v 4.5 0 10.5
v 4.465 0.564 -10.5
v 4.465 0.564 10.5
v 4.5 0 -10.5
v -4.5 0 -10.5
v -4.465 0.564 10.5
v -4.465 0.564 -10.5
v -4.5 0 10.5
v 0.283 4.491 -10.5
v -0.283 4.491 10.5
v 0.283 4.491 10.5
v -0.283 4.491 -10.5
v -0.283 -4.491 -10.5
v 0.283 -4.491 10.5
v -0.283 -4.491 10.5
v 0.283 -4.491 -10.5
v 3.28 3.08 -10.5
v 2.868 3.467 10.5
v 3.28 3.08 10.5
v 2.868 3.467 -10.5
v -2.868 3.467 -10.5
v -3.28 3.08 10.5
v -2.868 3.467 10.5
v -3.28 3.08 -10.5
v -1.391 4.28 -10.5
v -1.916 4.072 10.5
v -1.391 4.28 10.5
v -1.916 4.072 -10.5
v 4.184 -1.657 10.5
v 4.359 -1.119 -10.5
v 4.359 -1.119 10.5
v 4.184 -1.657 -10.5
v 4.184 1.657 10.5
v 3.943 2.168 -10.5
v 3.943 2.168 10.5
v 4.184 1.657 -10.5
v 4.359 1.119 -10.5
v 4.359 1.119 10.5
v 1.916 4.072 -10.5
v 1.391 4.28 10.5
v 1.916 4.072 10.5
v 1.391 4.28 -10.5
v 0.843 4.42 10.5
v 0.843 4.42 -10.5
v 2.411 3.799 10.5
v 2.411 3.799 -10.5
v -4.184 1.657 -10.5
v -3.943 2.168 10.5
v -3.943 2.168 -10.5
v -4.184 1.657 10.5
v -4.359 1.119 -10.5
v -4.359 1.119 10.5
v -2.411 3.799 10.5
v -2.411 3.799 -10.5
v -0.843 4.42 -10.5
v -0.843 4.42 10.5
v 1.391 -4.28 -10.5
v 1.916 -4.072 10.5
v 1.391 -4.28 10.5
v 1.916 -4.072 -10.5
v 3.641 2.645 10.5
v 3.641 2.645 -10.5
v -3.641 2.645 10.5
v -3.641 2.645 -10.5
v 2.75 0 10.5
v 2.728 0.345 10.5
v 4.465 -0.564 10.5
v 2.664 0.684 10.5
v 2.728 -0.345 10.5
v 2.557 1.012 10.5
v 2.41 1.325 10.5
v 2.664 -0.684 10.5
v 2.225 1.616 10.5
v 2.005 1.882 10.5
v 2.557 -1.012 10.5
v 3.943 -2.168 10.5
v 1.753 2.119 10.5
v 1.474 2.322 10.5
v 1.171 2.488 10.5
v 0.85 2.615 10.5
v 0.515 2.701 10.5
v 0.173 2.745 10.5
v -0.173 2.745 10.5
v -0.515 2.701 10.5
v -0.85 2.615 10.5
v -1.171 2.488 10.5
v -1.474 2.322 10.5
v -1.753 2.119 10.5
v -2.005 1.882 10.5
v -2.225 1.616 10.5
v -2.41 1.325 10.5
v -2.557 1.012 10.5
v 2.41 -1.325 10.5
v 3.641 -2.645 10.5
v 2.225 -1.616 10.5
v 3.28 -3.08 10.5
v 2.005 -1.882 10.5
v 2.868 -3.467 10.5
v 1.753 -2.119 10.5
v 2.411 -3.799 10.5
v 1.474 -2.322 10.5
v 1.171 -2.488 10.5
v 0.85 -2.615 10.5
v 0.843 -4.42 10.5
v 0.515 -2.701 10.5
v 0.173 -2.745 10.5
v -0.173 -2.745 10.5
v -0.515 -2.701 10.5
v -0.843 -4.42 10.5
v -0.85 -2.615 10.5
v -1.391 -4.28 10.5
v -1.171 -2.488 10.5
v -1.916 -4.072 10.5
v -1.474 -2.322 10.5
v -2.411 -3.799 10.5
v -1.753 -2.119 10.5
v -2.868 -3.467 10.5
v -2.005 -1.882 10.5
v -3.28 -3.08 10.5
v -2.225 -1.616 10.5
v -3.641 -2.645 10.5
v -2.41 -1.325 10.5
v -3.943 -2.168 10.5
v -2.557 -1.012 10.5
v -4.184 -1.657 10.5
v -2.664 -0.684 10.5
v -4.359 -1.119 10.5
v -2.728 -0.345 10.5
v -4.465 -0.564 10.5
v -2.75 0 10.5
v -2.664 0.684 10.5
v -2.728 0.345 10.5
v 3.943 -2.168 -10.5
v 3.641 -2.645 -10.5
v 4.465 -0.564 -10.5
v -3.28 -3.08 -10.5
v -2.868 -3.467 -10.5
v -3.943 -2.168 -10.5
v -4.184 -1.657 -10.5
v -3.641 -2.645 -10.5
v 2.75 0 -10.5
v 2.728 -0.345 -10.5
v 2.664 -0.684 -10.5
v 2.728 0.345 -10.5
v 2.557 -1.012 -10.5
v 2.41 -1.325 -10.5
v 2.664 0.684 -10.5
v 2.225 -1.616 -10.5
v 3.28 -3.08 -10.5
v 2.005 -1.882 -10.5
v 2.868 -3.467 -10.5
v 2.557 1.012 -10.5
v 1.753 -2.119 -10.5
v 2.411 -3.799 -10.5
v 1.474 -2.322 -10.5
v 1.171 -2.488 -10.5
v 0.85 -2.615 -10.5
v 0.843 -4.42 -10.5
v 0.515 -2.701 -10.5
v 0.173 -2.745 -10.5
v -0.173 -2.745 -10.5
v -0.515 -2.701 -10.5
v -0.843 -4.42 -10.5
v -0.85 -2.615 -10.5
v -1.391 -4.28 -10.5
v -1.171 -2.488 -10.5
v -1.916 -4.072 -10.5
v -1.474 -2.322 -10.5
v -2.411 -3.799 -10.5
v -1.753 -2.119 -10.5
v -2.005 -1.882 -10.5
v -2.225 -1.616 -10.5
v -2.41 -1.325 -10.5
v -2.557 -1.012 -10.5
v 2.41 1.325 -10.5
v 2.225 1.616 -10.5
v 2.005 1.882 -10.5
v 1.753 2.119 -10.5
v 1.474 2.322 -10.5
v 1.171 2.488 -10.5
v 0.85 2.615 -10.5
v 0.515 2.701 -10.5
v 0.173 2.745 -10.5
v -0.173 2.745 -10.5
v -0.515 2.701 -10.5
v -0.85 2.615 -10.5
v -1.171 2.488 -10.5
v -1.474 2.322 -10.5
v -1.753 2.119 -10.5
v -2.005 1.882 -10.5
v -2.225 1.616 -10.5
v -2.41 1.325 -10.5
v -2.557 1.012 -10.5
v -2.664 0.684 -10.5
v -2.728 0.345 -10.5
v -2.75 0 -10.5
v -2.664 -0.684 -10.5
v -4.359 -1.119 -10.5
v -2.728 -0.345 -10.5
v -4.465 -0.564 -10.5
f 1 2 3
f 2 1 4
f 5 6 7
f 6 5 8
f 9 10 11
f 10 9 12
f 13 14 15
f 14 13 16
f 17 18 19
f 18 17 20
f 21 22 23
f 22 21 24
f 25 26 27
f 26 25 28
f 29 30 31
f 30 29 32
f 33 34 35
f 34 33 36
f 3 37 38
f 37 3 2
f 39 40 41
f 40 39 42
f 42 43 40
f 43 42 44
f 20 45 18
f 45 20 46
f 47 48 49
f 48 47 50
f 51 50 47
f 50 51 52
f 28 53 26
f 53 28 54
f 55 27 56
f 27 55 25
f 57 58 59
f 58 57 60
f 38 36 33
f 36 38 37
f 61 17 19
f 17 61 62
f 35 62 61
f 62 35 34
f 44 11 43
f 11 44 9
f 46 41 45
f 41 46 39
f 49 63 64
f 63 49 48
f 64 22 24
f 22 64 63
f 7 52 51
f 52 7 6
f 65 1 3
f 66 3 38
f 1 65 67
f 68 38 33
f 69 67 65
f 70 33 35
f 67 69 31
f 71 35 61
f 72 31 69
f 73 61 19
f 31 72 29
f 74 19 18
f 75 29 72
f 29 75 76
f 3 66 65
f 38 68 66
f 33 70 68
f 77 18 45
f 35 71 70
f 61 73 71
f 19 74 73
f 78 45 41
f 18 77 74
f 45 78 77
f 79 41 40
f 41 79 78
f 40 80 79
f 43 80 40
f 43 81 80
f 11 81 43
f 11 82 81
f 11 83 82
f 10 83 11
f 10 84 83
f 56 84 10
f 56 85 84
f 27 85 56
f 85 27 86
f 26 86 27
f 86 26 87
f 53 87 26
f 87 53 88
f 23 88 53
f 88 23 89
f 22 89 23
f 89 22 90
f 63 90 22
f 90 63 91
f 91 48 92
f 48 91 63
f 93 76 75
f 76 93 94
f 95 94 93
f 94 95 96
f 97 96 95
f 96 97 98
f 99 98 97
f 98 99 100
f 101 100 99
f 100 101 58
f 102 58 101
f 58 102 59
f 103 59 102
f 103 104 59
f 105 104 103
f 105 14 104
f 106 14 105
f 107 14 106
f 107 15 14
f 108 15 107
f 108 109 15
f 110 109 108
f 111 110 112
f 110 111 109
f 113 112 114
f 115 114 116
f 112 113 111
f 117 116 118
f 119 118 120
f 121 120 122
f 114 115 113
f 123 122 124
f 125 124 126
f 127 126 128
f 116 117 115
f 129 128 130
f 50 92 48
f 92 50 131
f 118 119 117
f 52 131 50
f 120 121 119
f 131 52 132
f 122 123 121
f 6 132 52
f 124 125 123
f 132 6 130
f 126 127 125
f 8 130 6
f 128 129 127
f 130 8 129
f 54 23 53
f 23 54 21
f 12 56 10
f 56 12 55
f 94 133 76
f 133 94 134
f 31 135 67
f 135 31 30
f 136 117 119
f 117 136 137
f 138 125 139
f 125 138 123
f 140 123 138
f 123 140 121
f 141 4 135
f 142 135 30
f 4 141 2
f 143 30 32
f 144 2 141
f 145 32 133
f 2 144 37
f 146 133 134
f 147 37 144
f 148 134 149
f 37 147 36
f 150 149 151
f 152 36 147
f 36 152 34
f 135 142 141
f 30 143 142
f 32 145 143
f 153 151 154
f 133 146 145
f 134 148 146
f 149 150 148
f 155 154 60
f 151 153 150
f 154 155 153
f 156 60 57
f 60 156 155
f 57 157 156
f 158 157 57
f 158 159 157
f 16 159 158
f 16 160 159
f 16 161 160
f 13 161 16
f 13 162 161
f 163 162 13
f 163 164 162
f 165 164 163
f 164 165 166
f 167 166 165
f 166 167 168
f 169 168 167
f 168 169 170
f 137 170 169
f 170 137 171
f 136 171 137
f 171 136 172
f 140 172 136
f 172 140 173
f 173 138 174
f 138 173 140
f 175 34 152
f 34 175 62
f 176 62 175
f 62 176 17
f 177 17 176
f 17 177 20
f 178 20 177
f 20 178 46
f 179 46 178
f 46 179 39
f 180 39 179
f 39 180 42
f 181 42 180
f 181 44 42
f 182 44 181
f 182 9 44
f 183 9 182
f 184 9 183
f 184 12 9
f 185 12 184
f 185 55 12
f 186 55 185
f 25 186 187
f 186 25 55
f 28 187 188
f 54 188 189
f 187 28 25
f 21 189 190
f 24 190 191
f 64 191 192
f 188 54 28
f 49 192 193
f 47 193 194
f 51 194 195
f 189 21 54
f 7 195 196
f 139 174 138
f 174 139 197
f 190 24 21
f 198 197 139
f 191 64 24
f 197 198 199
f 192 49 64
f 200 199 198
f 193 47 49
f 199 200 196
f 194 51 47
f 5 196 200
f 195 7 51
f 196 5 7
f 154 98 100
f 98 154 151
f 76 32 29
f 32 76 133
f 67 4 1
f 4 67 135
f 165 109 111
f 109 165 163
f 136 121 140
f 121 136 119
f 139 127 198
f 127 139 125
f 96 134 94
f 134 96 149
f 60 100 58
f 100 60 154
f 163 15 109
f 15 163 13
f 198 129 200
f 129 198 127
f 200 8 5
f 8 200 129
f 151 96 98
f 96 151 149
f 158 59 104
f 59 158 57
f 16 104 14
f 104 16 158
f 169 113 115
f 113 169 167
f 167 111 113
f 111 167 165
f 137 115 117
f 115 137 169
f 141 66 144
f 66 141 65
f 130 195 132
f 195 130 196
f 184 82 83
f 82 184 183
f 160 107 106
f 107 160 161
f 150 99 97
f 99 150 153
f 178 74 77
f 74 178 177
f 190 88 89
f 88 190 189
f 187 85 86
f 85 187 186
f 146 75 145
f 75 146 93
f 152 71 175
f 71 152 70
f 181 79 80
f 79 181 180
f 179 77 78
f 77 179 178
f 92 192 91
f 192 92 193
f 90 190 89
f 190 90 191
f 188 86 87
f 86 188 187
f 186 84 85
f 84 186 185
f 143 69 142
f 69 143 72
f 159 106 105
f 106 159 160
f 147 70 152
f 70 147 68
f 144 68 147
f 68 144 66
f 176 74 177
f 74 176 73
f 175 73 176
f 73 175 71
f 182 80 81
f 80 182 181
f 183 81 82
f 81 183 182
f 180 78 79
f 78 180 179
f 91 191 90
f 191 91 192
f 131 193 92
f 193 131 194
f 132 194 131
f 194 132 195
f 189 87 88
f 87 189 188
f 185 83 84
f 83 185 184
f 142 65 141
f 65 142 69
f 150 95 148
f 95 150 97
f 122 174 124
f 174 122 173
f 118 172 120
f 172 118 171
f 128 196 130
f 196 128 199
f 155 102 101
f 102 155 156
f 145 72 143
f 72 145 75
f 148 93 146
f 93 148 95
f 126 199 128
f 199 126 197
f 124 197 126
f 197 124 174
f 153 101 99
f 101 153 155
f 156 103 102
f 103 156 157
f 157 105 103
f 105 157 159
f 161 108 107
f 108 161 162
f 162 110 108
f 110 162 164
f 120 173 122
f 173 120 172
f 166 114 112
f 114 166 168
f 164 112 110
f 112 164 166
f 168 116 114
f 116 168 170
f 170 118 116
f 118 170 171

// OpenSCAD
$fn = 50;


difference() {
	union() {
		translate(v = [0, 0, -10.5000000000]) {
			cylinder(h = 21, r = 4.5000000000);
		}
	}
	union() {
		translate(v = [0, 0, -100.0000000000]) {
			cylinder(h = 200, r = 2.7500000000);
		}
	}
}
